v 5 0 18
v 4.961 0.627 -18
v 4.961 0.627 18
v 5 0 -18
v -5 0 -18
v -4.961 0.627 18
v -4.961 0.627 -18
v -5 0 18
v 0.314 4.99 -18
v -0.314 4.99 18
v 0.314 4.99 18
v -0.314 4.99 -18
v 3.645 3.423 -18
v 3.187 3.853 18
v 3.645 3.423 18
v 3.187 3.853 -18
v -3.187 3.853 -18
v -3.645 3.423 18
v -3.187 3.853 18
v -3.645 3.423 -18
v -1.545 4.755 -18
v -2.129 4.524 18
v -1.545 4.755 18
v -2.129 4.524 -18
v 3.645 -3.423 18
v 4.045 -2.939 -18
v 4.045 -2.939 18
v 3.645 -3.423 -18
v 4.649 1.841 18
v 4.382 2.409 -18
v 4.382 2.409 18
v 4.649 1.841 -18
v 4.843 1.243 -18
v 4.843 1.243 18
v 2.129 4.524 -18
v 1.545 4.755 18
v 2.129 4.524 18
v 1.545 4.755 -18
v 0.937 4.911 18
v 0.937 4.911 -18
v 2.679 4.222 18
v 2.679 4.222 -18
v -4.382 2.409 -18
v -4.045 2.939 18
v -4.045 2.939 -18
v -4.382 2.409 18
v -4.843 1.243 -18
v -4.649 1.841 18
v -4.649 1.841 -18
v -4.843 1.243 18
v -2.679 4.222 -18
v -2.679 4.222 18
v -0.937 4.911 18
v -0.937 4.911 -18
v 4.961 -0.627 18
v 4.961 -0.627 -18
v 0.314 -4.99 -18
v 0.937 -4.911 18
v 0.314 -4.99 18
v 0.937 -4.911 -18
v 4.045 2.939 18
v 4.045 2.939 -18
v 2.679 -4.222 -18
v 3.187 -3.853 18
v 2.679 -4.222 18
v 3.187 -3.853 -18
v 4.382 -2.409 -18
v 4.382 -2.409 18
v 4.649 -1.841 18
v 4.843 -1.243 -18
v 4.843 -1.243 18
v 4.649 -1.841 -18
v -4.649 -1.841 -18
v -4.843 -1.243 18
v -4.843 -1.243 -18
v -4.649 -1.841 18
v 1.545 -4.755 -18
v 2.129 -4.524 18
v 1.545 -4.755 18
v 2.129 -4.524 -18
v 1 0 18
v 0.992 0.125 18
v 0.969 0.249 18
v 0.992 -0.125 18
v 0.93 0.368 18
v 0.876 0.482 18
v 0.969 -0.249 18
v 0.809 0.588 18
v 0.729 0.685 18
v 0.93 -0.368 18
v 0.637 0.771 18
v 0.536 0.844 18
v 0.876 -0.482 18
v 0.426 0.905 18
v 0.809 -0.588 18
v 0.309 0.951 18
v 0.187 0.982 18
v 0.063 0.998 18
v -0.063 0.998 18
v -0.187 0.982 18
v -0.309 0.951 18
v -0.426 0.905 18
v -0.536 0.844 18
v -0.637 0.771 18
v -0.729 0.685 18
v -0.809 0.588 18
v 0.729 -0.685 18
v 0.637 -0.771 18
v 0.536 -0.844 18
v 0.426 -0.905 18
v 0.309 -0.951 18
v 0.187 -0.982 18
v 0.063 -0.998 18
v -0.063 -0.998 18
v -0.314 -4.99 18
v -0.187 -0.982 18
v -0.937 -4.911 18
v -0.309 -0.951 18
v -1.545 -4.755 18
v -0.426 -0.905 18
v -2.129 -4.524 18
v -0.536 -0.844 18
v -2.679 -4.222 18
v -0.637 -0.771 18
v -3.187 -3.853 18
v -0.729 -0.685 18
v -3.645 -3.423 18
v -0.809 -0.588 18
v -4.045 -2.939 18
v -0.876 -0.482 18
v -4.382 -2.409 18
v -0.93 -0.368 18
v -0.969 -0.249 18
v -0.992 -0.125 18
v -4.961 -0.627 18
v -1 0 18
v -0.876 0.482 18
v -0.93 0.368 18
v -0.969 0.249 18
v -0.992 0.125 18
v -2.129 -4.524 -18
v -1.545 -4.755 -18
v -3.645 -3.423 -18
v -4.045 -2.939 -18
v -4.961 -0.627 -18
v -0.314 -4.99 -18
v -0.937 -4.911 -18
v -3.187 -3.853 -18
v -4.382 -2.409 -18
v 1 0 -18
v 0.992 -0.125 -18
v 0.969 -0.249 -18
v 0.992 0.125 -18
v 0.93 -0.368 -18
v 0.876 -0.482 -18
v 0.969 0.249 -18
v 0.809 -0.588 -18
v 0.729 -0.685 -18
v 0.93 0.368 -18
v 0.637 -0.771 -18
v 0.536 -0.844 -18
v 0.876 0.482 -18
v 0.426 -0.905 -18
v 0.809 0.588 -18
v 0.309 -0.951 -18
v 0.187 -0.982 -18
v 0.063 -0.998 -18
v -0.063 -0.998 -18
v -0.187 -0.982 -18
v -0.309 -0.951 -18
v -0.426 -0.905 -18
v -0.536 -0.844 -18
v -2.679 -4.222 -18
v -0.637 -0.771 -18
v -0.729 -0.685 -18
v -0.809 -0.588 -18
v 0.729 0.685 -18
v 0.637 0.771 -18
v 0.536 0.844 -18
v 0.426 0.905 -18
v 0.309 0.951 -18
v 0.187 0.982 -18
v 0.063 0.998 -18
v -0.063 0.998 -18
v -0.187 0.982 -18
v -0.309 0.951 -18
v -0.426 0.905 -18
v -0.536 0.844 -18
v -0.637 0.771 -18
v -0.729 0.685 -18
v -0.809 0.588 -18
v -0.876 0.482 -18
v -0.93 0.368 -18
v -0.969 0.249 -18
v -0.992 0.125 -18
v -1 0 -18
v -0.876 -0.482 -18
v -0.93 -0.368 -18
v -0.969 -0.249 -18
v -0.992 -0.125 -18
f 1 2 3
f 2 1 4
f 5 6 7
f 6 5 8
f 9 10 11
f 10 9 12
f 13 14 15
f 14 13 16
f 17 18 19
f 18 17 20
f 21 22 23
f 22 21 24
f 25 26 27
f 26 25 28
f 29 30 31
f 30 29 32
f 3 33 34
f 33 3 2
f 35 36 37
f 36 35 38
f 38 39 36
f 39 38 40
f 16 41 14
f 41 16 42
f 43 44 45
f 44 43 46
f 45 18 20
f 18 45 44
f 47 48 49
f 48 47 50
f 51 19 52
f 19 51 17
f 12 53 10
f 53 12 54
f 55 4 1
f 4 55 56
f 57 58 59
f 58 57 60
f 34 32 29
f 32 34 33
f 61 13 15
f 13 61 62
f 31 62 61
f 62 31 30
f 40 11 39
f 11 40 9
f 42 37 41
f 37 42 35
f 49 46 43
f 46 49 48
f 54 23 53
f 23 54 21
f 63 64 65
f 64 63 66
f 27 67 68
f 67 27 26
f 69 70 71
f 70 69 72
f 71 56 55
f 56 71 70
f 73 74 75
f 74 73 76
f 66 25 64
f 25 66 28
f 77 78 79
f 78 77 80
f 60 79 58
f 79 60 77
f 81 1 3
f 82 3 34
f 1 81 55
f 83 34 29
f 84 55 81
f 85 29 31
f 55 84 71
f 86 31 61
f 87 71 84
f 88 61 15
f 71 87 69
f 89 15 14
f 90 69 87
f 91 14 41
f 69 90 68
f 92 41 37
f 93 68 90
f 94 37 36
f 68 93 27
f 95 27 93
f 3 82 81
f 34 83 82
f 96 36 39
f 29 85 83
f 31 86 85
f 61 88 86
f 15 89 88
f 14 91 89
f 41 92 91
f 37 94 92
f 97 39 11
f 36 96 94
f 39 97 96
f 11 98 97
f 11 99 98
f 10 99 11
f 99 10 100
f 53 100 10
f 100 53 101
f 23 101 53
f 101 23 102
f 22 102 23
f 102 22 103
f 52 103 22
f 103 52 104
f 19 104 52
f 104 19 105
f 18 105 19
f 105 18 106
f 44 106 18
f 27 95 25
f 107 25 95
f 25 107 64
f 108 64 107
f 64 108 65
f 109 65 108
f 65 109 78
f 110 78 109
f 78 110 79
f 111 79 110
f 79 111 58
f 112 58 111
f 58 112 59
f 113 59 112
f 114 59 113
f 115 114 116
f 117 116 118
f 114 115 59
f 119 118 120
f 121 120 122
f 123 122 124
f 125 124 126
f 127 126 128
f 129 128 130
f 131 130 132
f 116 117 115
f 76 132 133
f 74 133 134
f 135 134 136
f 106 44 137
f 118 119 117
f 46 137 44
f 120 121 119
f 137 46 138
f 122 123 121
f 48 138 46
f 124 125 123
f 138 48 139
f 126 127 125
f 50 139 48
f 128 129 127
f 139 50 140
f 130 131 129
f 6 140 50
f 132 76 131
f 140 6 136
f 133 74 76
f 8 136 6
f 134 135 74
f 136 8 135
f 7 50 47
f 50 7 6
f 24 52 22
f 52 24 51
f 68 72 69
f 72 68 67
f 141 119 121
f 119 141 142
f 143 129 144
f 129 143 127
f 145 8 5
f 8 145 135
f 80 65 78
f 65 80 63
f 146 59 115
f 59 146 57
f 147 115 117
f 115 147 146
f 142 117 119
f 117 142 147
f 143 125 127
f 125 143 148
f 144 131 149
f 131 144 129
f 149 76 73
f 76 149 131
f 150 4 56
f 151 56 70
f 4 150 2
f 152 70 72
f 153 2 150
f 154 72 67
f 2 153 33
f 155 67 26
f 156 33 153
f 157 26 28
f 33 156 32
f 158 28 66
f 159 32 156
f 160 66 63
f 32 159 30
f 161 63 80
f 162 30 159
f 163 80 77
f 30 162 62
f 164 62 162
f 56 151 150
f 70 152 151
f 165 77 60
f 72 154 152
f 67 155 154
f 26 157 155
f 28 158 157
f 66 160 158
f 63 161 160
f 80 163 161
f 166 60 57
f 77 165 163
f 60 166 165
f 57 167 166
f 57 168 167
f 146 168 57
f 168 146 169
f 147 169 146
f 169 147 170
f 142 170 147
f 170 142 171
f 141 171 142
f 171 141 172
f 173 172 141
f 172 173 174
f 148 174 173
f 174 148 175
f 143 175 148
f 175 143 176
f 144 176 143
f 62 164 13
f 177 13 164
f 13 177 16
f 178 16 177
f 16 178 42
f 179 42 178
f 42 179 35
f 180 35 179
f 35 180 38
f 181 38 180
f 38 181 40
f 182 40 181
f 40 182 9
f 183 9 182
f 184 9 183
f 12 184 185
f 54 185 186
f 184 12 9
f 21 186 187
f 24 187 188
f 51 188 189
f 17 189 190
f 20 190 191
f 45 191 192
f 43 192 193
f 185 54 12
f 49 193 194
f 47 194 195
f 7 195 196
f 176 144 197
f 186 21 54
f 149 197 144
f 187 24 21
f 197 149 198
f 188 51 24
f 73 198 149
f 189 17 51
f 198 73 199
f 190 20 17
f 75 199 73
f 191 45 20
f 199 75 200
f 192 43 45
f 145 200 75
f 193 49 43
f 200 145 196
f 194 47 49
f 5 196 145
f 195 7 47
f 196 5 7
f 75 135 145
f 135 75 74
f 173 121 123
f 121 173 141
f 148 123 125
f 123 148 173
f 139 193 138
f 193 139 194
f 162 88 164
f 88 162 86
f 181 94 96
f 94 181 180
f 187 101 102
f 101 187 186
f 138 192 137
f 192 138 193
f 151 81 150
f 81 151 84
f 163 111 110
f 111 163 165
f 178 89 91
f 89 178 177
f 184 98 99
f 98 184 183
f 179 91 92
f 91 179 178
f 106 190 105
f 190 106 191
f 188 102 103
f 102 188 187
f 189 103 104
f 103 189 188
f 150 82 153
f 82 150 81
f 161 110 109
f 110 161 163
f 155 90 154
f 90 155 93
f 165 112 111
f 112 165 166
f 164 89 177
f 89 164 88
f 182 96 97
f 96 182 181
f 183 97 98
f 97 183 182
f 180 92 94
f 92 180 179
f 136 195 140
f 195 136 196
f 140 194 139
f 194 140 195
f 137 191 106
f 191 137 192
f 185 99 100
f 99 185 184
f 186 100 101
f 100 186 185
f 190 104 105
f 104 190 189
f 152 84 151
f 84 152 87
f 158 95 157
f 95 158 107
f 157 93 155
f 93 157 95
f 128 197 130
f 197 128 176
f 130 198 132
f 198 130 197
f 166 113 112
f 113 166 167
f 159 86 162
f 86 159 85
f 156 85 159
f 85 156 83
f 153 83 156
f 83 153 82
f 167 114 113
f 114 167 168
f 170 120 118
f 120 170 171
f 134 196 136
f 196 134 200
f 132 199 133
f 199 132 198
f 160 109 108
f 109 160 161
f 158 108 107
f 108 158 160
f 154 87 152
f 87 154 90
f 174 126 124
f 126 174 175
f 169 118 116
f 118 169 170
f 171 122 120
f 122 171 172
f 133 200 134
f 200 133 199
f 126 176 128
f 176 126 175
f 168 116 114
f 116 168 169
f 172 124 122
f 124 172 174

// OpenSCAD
$fn = 50;


difference() {
	union() {
		translate(v = [0, 0, -18.0000000000]) {
			cylinder(h = 36, r = 5.0000000000);
		}
	}
	union() {
		translate(v = [0, 0, -100.0000000000]) {
			cylinder(h = 200, r = 1.0000000000);
		}
	}
}
